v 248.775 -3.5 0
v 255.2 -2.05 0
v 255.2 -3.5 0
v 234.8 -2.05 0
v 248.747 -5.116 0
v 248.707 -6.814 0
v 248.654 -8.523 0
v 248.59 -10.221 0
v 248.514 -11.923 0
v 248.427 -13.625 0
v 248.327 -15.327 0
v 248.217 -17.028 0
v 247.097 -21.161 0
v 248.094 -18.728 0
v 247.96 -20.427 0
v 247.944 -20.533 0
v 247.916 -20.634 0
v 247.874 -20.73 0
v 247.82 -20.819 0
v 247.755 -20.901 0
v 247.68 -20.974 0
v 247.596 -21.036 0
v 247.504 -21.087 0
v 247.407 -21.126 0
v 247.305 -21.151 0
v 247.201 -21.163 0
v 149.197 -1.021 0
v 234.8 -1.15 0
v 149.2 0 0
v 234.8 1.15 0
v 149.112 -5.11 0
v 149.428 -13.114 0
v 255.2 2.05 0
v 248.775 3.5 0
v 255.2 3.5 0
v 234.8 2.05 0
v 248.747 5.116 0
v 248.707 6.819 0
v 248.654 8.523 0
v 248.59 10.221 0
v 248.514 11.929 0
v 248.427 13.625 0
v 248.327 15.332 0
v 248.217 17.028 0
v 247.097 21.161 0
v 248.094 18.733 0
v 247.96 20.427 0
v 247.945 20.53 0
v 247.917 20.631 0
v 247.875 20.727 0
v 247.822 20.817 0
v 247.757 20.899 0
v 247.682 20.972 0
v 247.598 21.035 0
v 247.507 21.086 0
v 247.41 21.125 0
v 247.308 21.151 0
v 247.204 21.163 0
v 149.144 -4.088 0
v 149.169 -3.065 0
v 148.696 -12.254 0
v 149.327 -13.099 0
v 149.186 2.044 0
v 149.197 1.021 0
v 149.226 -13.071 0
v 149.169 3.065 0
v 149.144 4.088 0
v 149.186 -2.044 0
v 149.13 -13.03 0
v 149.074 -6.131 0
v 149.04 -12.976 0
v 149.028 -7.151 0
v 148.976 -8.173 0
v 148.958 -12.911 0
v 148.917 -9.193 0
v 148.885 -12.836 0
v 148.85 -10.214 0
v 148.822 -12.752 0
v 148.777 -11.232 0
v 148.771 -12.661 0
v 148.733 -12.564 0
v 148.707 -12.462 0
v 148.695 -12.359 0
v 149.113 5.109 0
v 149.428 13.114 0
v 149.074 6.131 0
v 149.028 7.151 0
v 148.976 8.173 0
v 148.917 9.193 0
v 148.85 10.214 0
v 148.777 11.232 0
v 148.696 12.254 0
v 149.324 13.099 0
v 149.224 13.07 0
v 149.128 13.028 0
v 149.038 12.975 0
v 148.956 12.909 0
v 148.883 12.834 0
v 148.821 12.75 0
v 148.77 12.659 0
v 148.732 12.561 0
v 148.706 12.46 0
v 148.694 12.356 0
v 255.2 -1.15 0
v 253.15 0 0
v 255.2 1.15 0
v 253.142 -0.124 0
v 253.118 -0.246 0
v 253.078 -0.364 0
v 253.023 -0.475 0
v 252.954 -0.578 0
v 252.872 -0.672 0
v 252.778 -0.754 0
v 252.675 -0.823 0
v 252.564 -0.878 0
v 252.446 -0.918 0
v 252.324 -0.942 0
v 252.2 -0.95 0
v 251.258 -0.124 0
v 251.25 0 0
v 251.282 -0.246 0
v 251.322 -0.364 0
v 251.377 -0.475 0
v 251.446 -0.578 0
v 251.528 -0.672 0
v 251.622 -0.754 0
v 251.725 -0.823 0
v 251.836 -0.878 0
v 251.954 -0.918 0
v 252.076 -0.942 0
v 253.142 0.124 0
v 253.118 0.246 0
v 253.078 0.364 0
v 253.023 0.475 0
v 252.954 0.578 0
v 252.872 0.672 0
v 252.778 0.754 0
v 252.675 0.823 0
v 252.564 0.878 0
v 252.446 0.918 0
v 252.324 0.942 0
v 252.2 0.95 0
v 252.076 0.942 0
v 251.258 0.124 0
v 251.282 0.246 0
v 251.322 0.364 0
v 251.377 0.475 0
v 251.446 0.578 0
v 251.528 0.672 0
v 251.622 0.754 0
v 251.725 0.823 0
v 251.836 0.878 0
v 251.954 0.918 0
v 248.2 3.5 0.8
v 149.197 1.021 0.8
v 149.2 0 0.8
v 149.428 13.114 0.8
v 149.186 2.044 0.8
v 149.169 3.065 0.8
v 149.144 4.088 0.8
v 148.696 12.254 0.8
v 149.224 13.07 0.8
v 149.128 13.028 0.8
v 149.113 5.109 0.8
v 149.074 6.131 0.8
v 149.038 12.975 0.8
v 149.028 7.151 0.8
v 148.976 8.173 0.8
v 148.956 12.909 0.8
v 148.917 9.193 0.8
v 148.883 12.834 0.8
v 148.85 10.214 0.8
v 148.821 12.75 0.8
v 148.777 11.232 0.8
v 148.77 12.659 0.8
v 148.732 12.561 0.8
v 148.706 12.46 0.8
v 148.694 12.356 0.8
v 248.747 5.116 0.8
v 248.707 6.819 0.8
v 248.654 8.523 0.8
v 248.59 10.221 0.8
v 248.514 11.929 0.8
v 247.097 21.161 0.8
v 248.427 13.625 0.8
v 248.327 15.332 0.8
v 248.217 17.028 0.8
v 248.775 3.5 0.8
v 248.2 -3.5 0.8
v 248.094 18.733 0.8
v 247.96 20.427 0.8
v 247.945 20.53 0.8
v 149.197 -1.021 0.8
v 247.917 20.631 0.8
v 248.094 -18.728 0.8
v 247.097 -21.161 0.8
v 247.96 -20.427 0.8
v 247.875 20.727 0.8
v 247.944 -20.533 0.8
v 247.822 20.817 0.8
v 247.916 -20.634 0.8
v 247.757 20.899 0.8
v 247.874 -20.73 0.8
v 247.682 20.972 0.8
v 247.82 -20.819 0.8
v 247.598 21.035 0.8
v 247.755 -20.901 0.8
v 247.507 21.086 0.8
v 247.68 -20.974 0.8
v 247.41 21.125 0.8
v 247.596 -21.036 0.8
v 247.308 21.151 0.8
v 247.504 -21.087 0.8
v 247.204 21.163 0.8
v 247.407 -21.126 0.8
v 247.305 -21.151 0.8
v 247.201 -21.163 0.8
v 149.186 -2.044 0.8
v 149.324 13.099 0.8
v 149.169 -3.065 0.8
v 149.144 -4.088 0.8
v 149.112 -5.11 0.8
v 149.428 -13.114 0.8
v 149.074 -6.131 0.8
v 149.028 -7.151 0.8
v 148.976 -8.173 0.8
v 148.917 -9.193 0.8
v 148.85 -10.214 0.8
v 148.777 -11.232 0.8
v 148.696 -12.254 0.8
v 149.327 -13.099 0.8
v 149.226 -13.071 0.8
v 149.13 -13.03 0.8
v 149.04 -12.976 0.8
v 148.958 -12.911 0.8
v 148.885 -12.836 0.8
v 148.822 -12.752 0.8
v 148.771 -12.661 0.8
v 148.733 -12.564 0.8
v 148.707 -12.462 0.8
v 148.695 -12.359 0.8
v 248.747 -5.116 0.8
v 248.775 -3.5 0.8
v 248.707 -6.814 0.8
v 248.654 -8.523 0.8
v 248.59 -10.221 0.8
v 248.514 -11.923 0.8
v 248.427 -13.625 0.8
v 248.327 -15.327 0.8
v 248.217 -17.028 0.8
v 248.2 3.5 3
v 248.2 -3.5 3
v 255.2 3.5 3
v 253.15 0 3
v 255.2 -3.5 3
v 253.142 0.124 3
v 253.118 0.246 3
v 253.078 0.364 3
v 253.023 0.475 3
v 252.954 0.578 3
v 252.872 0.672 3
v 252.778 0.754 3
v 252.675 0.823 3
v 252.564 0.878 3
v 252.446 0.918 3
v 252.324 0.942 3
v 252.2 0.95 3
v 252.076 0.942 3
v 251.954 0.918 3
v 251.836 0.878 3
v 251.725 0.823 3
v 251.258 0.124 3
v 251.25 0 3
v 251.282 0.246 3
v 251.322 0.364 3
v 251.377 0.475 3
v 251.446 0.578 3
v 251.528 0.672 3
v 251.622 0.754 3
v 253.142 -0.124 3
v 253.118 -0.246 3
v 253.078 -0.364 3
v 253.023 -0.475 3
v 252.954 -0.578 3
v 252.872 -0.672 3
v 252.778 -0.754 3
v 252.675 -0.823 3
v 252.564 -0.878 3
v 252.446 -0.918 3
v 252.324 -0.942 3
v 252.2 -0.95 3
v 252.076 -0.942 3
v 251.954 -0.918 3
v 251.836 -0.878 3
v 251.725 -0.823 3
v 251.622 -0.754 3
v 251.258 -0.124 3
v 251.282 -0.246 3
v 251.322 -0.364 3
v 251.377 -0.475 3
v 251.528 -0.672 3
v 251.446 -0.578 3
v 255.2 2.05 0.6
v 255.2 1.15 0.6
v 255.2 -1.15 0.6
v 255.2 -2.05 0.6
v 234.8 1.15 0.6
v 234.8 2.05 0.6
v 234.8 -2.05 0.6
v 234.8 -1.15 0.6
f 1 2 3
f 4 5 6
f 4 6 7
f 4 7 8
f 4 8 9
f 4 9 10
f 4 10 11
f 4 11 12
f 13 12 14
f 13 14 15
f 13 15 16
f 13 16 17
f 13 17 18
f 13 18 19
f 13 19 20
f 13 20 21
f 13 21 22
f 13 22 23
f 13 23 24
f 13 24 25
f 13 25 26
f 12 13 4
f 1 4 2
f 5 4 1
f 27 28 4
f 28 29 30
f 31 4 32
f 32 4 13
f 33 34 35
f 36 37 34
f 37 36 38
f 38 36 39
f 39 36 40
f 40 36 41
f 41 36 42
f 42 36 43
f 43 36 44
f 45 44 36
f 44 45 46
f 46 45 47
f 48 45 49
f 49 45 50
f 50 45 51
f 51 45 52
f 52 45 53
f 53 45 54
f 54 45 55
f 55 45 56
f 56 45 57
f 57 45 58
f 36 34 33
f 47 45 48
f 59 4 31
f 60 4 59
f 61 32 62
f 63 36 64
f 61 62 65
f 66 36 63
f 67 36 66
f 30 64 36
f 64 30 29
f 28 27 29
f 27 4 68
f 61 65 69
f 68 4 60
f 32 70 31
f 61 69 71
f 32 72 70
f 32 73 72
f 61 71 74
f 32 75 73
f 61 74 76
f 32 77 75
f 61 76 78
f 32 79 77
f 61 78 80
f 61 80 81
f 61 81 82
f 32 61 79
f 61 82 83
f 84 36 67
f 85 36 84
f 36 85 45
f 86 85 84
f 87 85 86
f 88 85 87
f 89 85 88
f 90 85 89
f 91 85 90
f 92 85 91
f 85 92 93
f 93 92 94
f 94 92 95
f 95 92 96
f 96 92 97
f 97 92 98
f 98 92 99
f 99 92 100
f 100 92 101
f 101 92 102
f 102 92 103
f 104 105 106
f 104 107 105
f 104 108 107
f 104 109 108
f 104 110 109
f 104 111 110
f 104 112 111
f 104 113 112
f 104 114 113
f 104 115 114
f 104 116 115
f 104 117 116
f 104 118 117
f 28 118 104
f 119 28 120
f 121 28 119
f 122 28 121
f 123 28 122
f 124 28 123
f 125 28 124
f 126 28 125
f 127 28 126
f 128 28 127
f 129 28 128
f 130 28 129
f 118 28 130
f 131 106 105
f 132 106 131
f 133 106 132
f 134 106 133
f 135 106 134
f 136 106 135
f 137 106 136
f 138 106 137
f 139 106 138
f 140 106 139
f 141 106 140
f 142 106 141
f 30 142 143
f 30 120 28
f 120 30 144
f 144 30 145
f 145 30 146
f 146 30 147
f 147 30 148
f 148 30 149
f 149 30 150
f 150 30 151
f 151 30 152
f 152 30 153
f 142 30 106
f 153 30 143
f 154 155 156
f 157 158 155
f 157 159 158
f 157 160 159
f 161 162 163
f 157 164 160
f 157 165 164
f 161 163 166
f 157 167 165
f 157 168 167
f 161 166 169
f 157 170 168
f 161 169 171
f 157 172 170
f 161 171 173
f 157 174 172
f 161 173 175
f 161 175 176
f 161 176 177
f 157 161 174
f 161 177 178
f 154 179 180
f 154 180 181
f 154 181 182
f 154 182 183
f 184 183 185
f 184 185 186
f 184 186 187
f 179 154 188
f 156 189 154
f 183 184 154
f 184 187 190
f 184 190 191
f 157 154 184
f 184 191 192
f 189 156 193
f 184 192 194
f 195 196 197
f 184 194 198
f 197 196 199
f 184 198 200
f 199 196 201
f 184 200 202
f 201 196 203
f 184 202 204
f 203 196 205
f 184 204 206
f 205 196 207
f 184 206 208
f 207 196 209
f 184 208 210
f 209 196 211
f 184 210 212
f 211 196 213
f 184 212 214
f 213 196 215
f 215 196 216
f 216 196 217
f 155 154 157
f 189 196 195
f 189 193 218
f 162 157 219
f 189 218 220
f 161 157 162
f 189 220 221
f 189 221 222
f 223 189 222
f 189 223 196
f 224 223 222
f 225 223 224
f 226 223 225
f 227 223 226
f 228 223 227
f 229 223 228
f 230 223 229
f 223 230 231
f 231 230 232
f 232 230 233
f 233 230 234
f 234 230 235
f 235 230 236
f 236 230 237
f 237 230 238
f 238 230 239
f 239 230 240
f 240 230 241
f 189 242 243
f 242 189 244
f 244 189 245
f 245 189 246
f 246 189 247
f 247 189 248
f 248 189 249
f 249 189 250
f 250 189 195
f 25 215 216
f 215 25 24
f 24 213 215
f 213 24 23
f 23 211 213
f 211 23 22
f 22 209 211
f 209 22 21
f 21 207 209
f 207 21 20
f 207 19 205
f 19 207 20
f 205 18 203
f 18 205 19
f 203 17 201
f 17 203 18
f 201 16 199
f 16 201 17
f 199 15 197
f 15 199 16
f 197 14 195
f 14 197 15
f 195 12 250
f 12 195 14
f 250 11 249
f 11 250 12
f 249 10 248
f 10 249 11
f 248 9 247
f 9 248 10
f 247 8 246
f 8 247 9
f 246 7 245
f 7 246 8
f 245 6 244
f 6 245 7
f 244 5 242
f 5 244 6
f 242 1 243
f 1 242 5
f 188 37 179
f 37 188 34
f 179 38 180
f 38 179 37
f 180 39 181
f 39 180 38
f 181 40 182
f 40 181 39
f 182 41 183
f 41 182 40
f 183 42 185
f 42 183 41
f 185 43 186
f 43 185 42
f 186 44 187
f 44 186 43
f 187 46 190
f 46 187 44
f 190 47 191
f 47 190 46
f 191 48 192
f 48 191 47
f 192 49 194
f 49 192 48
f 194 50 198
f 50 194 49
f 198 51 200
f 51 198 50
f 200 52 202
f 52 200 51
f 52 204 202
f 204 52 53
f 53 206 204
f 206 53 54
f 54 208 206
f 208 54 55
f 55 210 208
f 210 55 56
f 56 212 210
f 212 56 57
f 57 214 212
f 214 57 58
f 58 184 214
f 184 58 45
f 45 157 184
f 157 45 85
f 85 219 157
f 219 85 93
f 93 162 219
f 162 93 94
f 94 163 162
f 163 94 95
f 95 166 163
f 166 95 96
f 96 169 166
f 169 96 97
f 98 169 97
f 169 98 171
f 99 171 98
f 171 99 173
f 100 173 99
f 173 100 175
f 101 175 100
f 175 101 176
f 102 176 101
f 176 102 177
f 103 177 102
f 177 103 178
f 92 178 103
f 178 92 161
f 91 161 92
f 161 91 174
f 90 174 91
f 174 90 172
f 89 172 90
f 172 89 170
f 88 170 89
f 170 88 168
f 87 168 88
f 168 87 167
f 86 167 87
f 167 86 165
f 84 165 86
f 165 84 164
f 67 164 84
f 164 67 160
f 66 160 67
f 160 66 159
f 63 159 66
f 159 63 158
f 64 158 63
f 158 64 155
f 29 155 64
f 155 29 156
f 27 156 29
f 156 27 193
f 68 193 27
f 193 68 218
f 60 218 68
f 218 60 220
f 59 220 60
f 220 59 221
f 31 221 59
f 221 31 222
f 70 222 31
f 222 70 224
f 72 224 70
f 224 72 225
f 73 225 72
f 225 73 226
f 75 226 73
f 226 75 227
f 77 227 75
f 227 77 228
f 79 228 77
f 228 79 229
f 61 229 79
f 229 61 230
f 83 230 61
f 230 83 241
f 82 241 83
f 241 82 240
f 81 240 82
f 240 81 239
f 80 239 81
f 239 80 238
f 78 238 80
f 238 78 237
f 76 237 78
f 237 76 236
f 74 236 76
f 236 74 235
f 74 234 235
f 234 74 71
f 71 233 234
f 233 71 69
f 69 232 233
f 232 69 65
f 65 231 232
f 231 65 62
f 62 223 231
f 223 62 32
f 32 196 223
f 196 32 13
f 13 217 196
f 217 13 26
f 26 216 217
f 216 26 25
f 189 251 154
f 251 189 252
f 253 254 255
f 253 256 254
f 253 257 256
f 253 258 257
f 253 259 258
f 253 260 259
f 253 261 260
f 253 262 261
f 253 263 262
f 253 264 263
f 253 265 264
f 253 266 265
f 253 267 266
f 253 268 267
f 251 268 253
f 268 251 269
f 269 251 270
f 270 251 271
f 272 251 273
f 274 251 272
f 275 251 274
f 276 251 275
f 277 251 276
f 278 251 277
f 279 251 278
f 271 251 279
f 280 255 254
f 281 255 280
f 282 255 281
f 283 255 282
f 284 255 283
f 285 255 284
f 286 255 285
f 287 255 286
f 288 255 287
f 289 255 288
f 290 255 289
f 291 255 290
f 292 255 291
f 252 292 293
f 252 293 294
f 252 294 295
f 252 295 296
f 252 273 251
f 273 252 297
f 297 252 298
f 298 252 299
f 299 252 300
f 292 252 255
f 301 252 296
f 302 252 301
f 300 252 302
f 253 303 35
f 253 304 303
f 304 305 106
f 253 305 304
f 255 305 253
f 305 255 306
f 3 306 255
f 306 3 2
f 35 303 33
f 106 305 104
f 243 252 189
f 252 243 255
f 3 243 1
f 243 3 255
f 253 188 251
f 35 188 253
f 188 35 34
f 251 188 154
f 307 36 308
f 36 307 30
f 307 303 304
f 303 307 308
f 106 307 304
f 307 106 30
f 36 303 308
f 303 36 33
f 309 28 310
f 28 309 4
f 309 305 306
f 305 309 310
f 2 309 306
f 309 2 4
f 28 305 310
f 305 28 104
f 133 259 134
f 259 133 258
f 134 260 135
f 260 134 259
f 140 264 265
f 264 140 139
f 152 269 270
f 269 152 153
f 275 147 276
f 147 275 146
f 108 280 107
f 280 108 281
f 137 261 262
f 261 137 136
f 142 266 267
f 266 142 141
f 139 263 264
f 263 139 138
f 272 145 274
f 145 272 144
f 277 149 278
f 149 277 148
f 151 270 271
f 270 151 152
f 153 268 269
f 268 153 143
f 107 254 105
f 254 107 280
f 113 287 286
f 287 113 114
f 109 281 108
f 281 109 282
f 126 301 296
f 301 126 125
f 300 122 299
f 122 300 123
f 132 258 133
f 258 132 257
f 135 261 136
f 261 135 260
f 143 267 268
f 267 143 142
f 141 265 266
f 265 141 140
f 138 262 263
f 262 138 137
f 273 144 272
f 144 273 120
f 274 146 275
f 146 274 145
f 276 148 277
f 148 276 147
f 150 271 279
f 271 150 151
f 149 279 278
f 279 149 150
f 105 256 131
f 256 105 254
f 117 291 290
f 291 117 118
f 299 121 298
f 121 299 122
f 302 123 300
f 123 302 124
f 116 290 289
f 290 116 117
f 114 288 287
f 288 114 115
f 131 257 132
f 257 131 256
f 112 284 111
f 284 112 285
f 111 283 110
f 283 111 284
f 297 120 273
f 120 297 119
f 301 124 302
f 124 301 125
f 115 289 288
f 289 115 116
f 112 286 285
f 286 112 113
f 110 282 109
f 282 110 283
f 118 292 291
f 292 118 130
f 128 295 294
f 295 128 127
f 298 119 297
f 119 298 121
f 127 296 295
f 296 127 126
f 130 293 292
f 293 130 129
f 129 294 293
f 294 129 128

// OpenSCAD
// Gen-DW — bobbin LID (top flange + locating tab). Print x12, flange face DOWN on the bed.
// CA-glue onto the hub top BEFORE winding. Tab = lap joint into the stator tab pocket; 1.75 mm filament
// pin through pin hole + stator ledge, trim flush. Lead slots carry both leads flush.
include <parameters.scad>;
$fn = 48;
module sector_2d(r_in, r_out, ang) {
    polygon([
        for (a = [-ang/2 : ang/24 : ang/2]) [r_in*cos(a), r_in*sin(a)],
        for (a = [ang/2 : -ang/24 : -ang/2]) [r_out*cos(a), r_out*sin(a)]
    ]);
}
module footprint_2d() { offset(r=wall) sector_2d(coil_id_r, coil_od_r, span_deg); }
module hub_2d()       { offset(delta=-coil_core_inset) sector_2d(coil_id_r, coil_od_r, span_deg); }

difference() {
    union() {
        linear_extrude(flange_t) footprint_2d();
        translate([coil_od_r + 0.2, -tab_w/2, 0]) cube([tab_len, tab_w, tab_h]);
    }
    translate([coil_mount_r, 0, -0.1]) cylinder(d=pin_d, h=tab_h + 1);
    for (y = [lead_y, -lead_y])
        translate([coil_od_r - coil_core_inset - 0.5, y - lead_slot_w/2, -0.1])
            cube([coil_core_inset + tab_len + 2, lead_slot_w, lead_groove_d + 0.1]);
}
